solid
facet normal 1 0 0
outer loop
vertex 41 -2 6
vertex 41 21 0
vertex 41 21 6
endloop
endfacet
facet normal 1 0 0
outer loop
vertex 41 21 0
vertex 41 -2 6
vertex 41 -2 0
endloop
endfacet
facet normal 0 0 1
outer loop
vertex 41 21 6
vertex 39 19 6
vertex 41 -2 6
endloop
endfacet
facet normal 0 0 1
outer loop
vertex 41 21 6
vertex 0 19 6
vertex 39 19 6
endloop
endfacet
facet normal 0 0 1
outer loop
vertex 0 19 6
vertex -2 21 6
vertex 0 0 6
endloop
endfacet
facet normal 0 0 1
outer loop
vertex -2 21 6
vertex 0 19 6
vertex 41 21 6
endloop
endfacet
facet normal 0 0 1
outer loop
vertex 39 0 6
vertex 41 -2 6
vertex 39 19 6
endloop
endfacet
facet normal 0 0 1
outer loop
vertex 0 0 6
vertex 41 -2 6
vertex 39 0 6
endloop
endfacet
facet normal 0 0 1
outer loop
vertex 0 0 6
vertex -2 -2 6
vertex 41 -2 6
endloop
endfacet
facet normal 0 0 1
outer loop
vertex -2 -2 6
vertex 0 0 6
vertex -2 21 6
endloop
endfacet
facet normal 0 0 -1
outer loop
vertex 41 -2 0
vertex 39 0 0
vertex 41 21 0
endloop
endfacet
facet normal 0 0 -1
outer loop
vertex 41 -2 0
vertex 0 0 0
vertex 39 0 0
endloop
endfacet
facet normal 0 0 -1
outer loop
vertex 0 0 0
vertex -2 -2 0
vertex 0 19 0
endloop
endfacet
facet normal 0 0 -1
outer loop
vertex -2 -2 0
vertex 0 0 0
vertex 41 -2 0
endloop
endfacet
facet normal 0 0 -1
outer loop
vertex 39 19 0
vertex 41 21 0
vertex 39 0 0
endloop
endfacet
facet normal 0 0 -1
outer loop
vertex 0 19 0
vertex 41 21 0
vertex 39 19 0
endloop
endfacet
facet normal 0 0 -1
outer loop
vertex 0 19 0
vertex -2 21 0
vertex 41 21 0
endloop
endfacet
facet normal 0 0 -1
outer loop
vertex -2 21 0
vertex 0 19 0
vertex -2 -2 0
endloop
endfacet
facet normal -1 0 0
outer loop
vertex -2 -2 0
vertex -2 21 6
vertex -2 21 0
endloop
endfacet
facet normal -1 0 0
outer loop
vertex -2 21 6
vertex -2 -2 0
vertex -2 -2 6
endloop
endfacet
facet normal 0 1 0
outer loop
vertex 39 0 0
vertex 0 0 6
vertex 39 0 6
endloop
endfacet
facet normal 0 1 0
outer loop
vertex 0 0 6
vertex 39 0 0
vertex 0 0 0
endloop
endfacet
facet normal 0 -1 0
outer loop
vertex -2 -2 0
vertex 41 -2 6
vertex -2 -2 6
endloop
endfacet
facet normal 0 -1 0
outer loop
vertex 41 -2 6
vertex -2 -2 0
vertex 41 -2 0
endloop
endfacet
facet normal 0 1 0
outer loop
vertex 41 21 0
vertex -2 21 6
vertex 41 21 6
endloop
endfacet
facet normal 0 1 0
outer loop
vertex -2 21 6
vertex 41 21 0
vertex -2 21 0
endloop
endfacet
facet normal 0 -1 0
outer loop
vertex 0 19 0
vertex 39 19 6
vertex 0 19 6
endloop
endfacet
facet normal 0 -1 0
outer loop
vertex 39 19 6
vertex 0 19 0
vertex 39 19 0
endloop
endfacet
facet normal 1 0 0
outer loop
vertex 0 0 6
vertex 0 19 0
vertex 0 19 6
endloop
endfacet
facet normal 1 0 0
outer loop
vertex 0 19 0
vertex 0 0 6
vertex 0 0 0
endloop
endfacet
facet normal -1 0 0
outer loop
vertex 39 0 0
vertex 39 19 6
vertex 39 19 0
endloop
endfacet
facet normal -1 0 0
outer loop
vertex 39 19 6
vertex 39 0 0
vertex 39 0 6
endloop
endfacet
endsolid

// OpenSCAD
width=39;
height=19;
depth=6;

union() {       
    // display walls
    translate([-2,-2,0]) cube([2+width+2, 2, depth]);
    translate([-2,height,0]) cube([2+width+2, 2, depth]);
    
    translate([-2,-2,0]) cube([2, height+2, depth]);
    translate([width,-2,0]) cube([2, height+2, depth]);
}
